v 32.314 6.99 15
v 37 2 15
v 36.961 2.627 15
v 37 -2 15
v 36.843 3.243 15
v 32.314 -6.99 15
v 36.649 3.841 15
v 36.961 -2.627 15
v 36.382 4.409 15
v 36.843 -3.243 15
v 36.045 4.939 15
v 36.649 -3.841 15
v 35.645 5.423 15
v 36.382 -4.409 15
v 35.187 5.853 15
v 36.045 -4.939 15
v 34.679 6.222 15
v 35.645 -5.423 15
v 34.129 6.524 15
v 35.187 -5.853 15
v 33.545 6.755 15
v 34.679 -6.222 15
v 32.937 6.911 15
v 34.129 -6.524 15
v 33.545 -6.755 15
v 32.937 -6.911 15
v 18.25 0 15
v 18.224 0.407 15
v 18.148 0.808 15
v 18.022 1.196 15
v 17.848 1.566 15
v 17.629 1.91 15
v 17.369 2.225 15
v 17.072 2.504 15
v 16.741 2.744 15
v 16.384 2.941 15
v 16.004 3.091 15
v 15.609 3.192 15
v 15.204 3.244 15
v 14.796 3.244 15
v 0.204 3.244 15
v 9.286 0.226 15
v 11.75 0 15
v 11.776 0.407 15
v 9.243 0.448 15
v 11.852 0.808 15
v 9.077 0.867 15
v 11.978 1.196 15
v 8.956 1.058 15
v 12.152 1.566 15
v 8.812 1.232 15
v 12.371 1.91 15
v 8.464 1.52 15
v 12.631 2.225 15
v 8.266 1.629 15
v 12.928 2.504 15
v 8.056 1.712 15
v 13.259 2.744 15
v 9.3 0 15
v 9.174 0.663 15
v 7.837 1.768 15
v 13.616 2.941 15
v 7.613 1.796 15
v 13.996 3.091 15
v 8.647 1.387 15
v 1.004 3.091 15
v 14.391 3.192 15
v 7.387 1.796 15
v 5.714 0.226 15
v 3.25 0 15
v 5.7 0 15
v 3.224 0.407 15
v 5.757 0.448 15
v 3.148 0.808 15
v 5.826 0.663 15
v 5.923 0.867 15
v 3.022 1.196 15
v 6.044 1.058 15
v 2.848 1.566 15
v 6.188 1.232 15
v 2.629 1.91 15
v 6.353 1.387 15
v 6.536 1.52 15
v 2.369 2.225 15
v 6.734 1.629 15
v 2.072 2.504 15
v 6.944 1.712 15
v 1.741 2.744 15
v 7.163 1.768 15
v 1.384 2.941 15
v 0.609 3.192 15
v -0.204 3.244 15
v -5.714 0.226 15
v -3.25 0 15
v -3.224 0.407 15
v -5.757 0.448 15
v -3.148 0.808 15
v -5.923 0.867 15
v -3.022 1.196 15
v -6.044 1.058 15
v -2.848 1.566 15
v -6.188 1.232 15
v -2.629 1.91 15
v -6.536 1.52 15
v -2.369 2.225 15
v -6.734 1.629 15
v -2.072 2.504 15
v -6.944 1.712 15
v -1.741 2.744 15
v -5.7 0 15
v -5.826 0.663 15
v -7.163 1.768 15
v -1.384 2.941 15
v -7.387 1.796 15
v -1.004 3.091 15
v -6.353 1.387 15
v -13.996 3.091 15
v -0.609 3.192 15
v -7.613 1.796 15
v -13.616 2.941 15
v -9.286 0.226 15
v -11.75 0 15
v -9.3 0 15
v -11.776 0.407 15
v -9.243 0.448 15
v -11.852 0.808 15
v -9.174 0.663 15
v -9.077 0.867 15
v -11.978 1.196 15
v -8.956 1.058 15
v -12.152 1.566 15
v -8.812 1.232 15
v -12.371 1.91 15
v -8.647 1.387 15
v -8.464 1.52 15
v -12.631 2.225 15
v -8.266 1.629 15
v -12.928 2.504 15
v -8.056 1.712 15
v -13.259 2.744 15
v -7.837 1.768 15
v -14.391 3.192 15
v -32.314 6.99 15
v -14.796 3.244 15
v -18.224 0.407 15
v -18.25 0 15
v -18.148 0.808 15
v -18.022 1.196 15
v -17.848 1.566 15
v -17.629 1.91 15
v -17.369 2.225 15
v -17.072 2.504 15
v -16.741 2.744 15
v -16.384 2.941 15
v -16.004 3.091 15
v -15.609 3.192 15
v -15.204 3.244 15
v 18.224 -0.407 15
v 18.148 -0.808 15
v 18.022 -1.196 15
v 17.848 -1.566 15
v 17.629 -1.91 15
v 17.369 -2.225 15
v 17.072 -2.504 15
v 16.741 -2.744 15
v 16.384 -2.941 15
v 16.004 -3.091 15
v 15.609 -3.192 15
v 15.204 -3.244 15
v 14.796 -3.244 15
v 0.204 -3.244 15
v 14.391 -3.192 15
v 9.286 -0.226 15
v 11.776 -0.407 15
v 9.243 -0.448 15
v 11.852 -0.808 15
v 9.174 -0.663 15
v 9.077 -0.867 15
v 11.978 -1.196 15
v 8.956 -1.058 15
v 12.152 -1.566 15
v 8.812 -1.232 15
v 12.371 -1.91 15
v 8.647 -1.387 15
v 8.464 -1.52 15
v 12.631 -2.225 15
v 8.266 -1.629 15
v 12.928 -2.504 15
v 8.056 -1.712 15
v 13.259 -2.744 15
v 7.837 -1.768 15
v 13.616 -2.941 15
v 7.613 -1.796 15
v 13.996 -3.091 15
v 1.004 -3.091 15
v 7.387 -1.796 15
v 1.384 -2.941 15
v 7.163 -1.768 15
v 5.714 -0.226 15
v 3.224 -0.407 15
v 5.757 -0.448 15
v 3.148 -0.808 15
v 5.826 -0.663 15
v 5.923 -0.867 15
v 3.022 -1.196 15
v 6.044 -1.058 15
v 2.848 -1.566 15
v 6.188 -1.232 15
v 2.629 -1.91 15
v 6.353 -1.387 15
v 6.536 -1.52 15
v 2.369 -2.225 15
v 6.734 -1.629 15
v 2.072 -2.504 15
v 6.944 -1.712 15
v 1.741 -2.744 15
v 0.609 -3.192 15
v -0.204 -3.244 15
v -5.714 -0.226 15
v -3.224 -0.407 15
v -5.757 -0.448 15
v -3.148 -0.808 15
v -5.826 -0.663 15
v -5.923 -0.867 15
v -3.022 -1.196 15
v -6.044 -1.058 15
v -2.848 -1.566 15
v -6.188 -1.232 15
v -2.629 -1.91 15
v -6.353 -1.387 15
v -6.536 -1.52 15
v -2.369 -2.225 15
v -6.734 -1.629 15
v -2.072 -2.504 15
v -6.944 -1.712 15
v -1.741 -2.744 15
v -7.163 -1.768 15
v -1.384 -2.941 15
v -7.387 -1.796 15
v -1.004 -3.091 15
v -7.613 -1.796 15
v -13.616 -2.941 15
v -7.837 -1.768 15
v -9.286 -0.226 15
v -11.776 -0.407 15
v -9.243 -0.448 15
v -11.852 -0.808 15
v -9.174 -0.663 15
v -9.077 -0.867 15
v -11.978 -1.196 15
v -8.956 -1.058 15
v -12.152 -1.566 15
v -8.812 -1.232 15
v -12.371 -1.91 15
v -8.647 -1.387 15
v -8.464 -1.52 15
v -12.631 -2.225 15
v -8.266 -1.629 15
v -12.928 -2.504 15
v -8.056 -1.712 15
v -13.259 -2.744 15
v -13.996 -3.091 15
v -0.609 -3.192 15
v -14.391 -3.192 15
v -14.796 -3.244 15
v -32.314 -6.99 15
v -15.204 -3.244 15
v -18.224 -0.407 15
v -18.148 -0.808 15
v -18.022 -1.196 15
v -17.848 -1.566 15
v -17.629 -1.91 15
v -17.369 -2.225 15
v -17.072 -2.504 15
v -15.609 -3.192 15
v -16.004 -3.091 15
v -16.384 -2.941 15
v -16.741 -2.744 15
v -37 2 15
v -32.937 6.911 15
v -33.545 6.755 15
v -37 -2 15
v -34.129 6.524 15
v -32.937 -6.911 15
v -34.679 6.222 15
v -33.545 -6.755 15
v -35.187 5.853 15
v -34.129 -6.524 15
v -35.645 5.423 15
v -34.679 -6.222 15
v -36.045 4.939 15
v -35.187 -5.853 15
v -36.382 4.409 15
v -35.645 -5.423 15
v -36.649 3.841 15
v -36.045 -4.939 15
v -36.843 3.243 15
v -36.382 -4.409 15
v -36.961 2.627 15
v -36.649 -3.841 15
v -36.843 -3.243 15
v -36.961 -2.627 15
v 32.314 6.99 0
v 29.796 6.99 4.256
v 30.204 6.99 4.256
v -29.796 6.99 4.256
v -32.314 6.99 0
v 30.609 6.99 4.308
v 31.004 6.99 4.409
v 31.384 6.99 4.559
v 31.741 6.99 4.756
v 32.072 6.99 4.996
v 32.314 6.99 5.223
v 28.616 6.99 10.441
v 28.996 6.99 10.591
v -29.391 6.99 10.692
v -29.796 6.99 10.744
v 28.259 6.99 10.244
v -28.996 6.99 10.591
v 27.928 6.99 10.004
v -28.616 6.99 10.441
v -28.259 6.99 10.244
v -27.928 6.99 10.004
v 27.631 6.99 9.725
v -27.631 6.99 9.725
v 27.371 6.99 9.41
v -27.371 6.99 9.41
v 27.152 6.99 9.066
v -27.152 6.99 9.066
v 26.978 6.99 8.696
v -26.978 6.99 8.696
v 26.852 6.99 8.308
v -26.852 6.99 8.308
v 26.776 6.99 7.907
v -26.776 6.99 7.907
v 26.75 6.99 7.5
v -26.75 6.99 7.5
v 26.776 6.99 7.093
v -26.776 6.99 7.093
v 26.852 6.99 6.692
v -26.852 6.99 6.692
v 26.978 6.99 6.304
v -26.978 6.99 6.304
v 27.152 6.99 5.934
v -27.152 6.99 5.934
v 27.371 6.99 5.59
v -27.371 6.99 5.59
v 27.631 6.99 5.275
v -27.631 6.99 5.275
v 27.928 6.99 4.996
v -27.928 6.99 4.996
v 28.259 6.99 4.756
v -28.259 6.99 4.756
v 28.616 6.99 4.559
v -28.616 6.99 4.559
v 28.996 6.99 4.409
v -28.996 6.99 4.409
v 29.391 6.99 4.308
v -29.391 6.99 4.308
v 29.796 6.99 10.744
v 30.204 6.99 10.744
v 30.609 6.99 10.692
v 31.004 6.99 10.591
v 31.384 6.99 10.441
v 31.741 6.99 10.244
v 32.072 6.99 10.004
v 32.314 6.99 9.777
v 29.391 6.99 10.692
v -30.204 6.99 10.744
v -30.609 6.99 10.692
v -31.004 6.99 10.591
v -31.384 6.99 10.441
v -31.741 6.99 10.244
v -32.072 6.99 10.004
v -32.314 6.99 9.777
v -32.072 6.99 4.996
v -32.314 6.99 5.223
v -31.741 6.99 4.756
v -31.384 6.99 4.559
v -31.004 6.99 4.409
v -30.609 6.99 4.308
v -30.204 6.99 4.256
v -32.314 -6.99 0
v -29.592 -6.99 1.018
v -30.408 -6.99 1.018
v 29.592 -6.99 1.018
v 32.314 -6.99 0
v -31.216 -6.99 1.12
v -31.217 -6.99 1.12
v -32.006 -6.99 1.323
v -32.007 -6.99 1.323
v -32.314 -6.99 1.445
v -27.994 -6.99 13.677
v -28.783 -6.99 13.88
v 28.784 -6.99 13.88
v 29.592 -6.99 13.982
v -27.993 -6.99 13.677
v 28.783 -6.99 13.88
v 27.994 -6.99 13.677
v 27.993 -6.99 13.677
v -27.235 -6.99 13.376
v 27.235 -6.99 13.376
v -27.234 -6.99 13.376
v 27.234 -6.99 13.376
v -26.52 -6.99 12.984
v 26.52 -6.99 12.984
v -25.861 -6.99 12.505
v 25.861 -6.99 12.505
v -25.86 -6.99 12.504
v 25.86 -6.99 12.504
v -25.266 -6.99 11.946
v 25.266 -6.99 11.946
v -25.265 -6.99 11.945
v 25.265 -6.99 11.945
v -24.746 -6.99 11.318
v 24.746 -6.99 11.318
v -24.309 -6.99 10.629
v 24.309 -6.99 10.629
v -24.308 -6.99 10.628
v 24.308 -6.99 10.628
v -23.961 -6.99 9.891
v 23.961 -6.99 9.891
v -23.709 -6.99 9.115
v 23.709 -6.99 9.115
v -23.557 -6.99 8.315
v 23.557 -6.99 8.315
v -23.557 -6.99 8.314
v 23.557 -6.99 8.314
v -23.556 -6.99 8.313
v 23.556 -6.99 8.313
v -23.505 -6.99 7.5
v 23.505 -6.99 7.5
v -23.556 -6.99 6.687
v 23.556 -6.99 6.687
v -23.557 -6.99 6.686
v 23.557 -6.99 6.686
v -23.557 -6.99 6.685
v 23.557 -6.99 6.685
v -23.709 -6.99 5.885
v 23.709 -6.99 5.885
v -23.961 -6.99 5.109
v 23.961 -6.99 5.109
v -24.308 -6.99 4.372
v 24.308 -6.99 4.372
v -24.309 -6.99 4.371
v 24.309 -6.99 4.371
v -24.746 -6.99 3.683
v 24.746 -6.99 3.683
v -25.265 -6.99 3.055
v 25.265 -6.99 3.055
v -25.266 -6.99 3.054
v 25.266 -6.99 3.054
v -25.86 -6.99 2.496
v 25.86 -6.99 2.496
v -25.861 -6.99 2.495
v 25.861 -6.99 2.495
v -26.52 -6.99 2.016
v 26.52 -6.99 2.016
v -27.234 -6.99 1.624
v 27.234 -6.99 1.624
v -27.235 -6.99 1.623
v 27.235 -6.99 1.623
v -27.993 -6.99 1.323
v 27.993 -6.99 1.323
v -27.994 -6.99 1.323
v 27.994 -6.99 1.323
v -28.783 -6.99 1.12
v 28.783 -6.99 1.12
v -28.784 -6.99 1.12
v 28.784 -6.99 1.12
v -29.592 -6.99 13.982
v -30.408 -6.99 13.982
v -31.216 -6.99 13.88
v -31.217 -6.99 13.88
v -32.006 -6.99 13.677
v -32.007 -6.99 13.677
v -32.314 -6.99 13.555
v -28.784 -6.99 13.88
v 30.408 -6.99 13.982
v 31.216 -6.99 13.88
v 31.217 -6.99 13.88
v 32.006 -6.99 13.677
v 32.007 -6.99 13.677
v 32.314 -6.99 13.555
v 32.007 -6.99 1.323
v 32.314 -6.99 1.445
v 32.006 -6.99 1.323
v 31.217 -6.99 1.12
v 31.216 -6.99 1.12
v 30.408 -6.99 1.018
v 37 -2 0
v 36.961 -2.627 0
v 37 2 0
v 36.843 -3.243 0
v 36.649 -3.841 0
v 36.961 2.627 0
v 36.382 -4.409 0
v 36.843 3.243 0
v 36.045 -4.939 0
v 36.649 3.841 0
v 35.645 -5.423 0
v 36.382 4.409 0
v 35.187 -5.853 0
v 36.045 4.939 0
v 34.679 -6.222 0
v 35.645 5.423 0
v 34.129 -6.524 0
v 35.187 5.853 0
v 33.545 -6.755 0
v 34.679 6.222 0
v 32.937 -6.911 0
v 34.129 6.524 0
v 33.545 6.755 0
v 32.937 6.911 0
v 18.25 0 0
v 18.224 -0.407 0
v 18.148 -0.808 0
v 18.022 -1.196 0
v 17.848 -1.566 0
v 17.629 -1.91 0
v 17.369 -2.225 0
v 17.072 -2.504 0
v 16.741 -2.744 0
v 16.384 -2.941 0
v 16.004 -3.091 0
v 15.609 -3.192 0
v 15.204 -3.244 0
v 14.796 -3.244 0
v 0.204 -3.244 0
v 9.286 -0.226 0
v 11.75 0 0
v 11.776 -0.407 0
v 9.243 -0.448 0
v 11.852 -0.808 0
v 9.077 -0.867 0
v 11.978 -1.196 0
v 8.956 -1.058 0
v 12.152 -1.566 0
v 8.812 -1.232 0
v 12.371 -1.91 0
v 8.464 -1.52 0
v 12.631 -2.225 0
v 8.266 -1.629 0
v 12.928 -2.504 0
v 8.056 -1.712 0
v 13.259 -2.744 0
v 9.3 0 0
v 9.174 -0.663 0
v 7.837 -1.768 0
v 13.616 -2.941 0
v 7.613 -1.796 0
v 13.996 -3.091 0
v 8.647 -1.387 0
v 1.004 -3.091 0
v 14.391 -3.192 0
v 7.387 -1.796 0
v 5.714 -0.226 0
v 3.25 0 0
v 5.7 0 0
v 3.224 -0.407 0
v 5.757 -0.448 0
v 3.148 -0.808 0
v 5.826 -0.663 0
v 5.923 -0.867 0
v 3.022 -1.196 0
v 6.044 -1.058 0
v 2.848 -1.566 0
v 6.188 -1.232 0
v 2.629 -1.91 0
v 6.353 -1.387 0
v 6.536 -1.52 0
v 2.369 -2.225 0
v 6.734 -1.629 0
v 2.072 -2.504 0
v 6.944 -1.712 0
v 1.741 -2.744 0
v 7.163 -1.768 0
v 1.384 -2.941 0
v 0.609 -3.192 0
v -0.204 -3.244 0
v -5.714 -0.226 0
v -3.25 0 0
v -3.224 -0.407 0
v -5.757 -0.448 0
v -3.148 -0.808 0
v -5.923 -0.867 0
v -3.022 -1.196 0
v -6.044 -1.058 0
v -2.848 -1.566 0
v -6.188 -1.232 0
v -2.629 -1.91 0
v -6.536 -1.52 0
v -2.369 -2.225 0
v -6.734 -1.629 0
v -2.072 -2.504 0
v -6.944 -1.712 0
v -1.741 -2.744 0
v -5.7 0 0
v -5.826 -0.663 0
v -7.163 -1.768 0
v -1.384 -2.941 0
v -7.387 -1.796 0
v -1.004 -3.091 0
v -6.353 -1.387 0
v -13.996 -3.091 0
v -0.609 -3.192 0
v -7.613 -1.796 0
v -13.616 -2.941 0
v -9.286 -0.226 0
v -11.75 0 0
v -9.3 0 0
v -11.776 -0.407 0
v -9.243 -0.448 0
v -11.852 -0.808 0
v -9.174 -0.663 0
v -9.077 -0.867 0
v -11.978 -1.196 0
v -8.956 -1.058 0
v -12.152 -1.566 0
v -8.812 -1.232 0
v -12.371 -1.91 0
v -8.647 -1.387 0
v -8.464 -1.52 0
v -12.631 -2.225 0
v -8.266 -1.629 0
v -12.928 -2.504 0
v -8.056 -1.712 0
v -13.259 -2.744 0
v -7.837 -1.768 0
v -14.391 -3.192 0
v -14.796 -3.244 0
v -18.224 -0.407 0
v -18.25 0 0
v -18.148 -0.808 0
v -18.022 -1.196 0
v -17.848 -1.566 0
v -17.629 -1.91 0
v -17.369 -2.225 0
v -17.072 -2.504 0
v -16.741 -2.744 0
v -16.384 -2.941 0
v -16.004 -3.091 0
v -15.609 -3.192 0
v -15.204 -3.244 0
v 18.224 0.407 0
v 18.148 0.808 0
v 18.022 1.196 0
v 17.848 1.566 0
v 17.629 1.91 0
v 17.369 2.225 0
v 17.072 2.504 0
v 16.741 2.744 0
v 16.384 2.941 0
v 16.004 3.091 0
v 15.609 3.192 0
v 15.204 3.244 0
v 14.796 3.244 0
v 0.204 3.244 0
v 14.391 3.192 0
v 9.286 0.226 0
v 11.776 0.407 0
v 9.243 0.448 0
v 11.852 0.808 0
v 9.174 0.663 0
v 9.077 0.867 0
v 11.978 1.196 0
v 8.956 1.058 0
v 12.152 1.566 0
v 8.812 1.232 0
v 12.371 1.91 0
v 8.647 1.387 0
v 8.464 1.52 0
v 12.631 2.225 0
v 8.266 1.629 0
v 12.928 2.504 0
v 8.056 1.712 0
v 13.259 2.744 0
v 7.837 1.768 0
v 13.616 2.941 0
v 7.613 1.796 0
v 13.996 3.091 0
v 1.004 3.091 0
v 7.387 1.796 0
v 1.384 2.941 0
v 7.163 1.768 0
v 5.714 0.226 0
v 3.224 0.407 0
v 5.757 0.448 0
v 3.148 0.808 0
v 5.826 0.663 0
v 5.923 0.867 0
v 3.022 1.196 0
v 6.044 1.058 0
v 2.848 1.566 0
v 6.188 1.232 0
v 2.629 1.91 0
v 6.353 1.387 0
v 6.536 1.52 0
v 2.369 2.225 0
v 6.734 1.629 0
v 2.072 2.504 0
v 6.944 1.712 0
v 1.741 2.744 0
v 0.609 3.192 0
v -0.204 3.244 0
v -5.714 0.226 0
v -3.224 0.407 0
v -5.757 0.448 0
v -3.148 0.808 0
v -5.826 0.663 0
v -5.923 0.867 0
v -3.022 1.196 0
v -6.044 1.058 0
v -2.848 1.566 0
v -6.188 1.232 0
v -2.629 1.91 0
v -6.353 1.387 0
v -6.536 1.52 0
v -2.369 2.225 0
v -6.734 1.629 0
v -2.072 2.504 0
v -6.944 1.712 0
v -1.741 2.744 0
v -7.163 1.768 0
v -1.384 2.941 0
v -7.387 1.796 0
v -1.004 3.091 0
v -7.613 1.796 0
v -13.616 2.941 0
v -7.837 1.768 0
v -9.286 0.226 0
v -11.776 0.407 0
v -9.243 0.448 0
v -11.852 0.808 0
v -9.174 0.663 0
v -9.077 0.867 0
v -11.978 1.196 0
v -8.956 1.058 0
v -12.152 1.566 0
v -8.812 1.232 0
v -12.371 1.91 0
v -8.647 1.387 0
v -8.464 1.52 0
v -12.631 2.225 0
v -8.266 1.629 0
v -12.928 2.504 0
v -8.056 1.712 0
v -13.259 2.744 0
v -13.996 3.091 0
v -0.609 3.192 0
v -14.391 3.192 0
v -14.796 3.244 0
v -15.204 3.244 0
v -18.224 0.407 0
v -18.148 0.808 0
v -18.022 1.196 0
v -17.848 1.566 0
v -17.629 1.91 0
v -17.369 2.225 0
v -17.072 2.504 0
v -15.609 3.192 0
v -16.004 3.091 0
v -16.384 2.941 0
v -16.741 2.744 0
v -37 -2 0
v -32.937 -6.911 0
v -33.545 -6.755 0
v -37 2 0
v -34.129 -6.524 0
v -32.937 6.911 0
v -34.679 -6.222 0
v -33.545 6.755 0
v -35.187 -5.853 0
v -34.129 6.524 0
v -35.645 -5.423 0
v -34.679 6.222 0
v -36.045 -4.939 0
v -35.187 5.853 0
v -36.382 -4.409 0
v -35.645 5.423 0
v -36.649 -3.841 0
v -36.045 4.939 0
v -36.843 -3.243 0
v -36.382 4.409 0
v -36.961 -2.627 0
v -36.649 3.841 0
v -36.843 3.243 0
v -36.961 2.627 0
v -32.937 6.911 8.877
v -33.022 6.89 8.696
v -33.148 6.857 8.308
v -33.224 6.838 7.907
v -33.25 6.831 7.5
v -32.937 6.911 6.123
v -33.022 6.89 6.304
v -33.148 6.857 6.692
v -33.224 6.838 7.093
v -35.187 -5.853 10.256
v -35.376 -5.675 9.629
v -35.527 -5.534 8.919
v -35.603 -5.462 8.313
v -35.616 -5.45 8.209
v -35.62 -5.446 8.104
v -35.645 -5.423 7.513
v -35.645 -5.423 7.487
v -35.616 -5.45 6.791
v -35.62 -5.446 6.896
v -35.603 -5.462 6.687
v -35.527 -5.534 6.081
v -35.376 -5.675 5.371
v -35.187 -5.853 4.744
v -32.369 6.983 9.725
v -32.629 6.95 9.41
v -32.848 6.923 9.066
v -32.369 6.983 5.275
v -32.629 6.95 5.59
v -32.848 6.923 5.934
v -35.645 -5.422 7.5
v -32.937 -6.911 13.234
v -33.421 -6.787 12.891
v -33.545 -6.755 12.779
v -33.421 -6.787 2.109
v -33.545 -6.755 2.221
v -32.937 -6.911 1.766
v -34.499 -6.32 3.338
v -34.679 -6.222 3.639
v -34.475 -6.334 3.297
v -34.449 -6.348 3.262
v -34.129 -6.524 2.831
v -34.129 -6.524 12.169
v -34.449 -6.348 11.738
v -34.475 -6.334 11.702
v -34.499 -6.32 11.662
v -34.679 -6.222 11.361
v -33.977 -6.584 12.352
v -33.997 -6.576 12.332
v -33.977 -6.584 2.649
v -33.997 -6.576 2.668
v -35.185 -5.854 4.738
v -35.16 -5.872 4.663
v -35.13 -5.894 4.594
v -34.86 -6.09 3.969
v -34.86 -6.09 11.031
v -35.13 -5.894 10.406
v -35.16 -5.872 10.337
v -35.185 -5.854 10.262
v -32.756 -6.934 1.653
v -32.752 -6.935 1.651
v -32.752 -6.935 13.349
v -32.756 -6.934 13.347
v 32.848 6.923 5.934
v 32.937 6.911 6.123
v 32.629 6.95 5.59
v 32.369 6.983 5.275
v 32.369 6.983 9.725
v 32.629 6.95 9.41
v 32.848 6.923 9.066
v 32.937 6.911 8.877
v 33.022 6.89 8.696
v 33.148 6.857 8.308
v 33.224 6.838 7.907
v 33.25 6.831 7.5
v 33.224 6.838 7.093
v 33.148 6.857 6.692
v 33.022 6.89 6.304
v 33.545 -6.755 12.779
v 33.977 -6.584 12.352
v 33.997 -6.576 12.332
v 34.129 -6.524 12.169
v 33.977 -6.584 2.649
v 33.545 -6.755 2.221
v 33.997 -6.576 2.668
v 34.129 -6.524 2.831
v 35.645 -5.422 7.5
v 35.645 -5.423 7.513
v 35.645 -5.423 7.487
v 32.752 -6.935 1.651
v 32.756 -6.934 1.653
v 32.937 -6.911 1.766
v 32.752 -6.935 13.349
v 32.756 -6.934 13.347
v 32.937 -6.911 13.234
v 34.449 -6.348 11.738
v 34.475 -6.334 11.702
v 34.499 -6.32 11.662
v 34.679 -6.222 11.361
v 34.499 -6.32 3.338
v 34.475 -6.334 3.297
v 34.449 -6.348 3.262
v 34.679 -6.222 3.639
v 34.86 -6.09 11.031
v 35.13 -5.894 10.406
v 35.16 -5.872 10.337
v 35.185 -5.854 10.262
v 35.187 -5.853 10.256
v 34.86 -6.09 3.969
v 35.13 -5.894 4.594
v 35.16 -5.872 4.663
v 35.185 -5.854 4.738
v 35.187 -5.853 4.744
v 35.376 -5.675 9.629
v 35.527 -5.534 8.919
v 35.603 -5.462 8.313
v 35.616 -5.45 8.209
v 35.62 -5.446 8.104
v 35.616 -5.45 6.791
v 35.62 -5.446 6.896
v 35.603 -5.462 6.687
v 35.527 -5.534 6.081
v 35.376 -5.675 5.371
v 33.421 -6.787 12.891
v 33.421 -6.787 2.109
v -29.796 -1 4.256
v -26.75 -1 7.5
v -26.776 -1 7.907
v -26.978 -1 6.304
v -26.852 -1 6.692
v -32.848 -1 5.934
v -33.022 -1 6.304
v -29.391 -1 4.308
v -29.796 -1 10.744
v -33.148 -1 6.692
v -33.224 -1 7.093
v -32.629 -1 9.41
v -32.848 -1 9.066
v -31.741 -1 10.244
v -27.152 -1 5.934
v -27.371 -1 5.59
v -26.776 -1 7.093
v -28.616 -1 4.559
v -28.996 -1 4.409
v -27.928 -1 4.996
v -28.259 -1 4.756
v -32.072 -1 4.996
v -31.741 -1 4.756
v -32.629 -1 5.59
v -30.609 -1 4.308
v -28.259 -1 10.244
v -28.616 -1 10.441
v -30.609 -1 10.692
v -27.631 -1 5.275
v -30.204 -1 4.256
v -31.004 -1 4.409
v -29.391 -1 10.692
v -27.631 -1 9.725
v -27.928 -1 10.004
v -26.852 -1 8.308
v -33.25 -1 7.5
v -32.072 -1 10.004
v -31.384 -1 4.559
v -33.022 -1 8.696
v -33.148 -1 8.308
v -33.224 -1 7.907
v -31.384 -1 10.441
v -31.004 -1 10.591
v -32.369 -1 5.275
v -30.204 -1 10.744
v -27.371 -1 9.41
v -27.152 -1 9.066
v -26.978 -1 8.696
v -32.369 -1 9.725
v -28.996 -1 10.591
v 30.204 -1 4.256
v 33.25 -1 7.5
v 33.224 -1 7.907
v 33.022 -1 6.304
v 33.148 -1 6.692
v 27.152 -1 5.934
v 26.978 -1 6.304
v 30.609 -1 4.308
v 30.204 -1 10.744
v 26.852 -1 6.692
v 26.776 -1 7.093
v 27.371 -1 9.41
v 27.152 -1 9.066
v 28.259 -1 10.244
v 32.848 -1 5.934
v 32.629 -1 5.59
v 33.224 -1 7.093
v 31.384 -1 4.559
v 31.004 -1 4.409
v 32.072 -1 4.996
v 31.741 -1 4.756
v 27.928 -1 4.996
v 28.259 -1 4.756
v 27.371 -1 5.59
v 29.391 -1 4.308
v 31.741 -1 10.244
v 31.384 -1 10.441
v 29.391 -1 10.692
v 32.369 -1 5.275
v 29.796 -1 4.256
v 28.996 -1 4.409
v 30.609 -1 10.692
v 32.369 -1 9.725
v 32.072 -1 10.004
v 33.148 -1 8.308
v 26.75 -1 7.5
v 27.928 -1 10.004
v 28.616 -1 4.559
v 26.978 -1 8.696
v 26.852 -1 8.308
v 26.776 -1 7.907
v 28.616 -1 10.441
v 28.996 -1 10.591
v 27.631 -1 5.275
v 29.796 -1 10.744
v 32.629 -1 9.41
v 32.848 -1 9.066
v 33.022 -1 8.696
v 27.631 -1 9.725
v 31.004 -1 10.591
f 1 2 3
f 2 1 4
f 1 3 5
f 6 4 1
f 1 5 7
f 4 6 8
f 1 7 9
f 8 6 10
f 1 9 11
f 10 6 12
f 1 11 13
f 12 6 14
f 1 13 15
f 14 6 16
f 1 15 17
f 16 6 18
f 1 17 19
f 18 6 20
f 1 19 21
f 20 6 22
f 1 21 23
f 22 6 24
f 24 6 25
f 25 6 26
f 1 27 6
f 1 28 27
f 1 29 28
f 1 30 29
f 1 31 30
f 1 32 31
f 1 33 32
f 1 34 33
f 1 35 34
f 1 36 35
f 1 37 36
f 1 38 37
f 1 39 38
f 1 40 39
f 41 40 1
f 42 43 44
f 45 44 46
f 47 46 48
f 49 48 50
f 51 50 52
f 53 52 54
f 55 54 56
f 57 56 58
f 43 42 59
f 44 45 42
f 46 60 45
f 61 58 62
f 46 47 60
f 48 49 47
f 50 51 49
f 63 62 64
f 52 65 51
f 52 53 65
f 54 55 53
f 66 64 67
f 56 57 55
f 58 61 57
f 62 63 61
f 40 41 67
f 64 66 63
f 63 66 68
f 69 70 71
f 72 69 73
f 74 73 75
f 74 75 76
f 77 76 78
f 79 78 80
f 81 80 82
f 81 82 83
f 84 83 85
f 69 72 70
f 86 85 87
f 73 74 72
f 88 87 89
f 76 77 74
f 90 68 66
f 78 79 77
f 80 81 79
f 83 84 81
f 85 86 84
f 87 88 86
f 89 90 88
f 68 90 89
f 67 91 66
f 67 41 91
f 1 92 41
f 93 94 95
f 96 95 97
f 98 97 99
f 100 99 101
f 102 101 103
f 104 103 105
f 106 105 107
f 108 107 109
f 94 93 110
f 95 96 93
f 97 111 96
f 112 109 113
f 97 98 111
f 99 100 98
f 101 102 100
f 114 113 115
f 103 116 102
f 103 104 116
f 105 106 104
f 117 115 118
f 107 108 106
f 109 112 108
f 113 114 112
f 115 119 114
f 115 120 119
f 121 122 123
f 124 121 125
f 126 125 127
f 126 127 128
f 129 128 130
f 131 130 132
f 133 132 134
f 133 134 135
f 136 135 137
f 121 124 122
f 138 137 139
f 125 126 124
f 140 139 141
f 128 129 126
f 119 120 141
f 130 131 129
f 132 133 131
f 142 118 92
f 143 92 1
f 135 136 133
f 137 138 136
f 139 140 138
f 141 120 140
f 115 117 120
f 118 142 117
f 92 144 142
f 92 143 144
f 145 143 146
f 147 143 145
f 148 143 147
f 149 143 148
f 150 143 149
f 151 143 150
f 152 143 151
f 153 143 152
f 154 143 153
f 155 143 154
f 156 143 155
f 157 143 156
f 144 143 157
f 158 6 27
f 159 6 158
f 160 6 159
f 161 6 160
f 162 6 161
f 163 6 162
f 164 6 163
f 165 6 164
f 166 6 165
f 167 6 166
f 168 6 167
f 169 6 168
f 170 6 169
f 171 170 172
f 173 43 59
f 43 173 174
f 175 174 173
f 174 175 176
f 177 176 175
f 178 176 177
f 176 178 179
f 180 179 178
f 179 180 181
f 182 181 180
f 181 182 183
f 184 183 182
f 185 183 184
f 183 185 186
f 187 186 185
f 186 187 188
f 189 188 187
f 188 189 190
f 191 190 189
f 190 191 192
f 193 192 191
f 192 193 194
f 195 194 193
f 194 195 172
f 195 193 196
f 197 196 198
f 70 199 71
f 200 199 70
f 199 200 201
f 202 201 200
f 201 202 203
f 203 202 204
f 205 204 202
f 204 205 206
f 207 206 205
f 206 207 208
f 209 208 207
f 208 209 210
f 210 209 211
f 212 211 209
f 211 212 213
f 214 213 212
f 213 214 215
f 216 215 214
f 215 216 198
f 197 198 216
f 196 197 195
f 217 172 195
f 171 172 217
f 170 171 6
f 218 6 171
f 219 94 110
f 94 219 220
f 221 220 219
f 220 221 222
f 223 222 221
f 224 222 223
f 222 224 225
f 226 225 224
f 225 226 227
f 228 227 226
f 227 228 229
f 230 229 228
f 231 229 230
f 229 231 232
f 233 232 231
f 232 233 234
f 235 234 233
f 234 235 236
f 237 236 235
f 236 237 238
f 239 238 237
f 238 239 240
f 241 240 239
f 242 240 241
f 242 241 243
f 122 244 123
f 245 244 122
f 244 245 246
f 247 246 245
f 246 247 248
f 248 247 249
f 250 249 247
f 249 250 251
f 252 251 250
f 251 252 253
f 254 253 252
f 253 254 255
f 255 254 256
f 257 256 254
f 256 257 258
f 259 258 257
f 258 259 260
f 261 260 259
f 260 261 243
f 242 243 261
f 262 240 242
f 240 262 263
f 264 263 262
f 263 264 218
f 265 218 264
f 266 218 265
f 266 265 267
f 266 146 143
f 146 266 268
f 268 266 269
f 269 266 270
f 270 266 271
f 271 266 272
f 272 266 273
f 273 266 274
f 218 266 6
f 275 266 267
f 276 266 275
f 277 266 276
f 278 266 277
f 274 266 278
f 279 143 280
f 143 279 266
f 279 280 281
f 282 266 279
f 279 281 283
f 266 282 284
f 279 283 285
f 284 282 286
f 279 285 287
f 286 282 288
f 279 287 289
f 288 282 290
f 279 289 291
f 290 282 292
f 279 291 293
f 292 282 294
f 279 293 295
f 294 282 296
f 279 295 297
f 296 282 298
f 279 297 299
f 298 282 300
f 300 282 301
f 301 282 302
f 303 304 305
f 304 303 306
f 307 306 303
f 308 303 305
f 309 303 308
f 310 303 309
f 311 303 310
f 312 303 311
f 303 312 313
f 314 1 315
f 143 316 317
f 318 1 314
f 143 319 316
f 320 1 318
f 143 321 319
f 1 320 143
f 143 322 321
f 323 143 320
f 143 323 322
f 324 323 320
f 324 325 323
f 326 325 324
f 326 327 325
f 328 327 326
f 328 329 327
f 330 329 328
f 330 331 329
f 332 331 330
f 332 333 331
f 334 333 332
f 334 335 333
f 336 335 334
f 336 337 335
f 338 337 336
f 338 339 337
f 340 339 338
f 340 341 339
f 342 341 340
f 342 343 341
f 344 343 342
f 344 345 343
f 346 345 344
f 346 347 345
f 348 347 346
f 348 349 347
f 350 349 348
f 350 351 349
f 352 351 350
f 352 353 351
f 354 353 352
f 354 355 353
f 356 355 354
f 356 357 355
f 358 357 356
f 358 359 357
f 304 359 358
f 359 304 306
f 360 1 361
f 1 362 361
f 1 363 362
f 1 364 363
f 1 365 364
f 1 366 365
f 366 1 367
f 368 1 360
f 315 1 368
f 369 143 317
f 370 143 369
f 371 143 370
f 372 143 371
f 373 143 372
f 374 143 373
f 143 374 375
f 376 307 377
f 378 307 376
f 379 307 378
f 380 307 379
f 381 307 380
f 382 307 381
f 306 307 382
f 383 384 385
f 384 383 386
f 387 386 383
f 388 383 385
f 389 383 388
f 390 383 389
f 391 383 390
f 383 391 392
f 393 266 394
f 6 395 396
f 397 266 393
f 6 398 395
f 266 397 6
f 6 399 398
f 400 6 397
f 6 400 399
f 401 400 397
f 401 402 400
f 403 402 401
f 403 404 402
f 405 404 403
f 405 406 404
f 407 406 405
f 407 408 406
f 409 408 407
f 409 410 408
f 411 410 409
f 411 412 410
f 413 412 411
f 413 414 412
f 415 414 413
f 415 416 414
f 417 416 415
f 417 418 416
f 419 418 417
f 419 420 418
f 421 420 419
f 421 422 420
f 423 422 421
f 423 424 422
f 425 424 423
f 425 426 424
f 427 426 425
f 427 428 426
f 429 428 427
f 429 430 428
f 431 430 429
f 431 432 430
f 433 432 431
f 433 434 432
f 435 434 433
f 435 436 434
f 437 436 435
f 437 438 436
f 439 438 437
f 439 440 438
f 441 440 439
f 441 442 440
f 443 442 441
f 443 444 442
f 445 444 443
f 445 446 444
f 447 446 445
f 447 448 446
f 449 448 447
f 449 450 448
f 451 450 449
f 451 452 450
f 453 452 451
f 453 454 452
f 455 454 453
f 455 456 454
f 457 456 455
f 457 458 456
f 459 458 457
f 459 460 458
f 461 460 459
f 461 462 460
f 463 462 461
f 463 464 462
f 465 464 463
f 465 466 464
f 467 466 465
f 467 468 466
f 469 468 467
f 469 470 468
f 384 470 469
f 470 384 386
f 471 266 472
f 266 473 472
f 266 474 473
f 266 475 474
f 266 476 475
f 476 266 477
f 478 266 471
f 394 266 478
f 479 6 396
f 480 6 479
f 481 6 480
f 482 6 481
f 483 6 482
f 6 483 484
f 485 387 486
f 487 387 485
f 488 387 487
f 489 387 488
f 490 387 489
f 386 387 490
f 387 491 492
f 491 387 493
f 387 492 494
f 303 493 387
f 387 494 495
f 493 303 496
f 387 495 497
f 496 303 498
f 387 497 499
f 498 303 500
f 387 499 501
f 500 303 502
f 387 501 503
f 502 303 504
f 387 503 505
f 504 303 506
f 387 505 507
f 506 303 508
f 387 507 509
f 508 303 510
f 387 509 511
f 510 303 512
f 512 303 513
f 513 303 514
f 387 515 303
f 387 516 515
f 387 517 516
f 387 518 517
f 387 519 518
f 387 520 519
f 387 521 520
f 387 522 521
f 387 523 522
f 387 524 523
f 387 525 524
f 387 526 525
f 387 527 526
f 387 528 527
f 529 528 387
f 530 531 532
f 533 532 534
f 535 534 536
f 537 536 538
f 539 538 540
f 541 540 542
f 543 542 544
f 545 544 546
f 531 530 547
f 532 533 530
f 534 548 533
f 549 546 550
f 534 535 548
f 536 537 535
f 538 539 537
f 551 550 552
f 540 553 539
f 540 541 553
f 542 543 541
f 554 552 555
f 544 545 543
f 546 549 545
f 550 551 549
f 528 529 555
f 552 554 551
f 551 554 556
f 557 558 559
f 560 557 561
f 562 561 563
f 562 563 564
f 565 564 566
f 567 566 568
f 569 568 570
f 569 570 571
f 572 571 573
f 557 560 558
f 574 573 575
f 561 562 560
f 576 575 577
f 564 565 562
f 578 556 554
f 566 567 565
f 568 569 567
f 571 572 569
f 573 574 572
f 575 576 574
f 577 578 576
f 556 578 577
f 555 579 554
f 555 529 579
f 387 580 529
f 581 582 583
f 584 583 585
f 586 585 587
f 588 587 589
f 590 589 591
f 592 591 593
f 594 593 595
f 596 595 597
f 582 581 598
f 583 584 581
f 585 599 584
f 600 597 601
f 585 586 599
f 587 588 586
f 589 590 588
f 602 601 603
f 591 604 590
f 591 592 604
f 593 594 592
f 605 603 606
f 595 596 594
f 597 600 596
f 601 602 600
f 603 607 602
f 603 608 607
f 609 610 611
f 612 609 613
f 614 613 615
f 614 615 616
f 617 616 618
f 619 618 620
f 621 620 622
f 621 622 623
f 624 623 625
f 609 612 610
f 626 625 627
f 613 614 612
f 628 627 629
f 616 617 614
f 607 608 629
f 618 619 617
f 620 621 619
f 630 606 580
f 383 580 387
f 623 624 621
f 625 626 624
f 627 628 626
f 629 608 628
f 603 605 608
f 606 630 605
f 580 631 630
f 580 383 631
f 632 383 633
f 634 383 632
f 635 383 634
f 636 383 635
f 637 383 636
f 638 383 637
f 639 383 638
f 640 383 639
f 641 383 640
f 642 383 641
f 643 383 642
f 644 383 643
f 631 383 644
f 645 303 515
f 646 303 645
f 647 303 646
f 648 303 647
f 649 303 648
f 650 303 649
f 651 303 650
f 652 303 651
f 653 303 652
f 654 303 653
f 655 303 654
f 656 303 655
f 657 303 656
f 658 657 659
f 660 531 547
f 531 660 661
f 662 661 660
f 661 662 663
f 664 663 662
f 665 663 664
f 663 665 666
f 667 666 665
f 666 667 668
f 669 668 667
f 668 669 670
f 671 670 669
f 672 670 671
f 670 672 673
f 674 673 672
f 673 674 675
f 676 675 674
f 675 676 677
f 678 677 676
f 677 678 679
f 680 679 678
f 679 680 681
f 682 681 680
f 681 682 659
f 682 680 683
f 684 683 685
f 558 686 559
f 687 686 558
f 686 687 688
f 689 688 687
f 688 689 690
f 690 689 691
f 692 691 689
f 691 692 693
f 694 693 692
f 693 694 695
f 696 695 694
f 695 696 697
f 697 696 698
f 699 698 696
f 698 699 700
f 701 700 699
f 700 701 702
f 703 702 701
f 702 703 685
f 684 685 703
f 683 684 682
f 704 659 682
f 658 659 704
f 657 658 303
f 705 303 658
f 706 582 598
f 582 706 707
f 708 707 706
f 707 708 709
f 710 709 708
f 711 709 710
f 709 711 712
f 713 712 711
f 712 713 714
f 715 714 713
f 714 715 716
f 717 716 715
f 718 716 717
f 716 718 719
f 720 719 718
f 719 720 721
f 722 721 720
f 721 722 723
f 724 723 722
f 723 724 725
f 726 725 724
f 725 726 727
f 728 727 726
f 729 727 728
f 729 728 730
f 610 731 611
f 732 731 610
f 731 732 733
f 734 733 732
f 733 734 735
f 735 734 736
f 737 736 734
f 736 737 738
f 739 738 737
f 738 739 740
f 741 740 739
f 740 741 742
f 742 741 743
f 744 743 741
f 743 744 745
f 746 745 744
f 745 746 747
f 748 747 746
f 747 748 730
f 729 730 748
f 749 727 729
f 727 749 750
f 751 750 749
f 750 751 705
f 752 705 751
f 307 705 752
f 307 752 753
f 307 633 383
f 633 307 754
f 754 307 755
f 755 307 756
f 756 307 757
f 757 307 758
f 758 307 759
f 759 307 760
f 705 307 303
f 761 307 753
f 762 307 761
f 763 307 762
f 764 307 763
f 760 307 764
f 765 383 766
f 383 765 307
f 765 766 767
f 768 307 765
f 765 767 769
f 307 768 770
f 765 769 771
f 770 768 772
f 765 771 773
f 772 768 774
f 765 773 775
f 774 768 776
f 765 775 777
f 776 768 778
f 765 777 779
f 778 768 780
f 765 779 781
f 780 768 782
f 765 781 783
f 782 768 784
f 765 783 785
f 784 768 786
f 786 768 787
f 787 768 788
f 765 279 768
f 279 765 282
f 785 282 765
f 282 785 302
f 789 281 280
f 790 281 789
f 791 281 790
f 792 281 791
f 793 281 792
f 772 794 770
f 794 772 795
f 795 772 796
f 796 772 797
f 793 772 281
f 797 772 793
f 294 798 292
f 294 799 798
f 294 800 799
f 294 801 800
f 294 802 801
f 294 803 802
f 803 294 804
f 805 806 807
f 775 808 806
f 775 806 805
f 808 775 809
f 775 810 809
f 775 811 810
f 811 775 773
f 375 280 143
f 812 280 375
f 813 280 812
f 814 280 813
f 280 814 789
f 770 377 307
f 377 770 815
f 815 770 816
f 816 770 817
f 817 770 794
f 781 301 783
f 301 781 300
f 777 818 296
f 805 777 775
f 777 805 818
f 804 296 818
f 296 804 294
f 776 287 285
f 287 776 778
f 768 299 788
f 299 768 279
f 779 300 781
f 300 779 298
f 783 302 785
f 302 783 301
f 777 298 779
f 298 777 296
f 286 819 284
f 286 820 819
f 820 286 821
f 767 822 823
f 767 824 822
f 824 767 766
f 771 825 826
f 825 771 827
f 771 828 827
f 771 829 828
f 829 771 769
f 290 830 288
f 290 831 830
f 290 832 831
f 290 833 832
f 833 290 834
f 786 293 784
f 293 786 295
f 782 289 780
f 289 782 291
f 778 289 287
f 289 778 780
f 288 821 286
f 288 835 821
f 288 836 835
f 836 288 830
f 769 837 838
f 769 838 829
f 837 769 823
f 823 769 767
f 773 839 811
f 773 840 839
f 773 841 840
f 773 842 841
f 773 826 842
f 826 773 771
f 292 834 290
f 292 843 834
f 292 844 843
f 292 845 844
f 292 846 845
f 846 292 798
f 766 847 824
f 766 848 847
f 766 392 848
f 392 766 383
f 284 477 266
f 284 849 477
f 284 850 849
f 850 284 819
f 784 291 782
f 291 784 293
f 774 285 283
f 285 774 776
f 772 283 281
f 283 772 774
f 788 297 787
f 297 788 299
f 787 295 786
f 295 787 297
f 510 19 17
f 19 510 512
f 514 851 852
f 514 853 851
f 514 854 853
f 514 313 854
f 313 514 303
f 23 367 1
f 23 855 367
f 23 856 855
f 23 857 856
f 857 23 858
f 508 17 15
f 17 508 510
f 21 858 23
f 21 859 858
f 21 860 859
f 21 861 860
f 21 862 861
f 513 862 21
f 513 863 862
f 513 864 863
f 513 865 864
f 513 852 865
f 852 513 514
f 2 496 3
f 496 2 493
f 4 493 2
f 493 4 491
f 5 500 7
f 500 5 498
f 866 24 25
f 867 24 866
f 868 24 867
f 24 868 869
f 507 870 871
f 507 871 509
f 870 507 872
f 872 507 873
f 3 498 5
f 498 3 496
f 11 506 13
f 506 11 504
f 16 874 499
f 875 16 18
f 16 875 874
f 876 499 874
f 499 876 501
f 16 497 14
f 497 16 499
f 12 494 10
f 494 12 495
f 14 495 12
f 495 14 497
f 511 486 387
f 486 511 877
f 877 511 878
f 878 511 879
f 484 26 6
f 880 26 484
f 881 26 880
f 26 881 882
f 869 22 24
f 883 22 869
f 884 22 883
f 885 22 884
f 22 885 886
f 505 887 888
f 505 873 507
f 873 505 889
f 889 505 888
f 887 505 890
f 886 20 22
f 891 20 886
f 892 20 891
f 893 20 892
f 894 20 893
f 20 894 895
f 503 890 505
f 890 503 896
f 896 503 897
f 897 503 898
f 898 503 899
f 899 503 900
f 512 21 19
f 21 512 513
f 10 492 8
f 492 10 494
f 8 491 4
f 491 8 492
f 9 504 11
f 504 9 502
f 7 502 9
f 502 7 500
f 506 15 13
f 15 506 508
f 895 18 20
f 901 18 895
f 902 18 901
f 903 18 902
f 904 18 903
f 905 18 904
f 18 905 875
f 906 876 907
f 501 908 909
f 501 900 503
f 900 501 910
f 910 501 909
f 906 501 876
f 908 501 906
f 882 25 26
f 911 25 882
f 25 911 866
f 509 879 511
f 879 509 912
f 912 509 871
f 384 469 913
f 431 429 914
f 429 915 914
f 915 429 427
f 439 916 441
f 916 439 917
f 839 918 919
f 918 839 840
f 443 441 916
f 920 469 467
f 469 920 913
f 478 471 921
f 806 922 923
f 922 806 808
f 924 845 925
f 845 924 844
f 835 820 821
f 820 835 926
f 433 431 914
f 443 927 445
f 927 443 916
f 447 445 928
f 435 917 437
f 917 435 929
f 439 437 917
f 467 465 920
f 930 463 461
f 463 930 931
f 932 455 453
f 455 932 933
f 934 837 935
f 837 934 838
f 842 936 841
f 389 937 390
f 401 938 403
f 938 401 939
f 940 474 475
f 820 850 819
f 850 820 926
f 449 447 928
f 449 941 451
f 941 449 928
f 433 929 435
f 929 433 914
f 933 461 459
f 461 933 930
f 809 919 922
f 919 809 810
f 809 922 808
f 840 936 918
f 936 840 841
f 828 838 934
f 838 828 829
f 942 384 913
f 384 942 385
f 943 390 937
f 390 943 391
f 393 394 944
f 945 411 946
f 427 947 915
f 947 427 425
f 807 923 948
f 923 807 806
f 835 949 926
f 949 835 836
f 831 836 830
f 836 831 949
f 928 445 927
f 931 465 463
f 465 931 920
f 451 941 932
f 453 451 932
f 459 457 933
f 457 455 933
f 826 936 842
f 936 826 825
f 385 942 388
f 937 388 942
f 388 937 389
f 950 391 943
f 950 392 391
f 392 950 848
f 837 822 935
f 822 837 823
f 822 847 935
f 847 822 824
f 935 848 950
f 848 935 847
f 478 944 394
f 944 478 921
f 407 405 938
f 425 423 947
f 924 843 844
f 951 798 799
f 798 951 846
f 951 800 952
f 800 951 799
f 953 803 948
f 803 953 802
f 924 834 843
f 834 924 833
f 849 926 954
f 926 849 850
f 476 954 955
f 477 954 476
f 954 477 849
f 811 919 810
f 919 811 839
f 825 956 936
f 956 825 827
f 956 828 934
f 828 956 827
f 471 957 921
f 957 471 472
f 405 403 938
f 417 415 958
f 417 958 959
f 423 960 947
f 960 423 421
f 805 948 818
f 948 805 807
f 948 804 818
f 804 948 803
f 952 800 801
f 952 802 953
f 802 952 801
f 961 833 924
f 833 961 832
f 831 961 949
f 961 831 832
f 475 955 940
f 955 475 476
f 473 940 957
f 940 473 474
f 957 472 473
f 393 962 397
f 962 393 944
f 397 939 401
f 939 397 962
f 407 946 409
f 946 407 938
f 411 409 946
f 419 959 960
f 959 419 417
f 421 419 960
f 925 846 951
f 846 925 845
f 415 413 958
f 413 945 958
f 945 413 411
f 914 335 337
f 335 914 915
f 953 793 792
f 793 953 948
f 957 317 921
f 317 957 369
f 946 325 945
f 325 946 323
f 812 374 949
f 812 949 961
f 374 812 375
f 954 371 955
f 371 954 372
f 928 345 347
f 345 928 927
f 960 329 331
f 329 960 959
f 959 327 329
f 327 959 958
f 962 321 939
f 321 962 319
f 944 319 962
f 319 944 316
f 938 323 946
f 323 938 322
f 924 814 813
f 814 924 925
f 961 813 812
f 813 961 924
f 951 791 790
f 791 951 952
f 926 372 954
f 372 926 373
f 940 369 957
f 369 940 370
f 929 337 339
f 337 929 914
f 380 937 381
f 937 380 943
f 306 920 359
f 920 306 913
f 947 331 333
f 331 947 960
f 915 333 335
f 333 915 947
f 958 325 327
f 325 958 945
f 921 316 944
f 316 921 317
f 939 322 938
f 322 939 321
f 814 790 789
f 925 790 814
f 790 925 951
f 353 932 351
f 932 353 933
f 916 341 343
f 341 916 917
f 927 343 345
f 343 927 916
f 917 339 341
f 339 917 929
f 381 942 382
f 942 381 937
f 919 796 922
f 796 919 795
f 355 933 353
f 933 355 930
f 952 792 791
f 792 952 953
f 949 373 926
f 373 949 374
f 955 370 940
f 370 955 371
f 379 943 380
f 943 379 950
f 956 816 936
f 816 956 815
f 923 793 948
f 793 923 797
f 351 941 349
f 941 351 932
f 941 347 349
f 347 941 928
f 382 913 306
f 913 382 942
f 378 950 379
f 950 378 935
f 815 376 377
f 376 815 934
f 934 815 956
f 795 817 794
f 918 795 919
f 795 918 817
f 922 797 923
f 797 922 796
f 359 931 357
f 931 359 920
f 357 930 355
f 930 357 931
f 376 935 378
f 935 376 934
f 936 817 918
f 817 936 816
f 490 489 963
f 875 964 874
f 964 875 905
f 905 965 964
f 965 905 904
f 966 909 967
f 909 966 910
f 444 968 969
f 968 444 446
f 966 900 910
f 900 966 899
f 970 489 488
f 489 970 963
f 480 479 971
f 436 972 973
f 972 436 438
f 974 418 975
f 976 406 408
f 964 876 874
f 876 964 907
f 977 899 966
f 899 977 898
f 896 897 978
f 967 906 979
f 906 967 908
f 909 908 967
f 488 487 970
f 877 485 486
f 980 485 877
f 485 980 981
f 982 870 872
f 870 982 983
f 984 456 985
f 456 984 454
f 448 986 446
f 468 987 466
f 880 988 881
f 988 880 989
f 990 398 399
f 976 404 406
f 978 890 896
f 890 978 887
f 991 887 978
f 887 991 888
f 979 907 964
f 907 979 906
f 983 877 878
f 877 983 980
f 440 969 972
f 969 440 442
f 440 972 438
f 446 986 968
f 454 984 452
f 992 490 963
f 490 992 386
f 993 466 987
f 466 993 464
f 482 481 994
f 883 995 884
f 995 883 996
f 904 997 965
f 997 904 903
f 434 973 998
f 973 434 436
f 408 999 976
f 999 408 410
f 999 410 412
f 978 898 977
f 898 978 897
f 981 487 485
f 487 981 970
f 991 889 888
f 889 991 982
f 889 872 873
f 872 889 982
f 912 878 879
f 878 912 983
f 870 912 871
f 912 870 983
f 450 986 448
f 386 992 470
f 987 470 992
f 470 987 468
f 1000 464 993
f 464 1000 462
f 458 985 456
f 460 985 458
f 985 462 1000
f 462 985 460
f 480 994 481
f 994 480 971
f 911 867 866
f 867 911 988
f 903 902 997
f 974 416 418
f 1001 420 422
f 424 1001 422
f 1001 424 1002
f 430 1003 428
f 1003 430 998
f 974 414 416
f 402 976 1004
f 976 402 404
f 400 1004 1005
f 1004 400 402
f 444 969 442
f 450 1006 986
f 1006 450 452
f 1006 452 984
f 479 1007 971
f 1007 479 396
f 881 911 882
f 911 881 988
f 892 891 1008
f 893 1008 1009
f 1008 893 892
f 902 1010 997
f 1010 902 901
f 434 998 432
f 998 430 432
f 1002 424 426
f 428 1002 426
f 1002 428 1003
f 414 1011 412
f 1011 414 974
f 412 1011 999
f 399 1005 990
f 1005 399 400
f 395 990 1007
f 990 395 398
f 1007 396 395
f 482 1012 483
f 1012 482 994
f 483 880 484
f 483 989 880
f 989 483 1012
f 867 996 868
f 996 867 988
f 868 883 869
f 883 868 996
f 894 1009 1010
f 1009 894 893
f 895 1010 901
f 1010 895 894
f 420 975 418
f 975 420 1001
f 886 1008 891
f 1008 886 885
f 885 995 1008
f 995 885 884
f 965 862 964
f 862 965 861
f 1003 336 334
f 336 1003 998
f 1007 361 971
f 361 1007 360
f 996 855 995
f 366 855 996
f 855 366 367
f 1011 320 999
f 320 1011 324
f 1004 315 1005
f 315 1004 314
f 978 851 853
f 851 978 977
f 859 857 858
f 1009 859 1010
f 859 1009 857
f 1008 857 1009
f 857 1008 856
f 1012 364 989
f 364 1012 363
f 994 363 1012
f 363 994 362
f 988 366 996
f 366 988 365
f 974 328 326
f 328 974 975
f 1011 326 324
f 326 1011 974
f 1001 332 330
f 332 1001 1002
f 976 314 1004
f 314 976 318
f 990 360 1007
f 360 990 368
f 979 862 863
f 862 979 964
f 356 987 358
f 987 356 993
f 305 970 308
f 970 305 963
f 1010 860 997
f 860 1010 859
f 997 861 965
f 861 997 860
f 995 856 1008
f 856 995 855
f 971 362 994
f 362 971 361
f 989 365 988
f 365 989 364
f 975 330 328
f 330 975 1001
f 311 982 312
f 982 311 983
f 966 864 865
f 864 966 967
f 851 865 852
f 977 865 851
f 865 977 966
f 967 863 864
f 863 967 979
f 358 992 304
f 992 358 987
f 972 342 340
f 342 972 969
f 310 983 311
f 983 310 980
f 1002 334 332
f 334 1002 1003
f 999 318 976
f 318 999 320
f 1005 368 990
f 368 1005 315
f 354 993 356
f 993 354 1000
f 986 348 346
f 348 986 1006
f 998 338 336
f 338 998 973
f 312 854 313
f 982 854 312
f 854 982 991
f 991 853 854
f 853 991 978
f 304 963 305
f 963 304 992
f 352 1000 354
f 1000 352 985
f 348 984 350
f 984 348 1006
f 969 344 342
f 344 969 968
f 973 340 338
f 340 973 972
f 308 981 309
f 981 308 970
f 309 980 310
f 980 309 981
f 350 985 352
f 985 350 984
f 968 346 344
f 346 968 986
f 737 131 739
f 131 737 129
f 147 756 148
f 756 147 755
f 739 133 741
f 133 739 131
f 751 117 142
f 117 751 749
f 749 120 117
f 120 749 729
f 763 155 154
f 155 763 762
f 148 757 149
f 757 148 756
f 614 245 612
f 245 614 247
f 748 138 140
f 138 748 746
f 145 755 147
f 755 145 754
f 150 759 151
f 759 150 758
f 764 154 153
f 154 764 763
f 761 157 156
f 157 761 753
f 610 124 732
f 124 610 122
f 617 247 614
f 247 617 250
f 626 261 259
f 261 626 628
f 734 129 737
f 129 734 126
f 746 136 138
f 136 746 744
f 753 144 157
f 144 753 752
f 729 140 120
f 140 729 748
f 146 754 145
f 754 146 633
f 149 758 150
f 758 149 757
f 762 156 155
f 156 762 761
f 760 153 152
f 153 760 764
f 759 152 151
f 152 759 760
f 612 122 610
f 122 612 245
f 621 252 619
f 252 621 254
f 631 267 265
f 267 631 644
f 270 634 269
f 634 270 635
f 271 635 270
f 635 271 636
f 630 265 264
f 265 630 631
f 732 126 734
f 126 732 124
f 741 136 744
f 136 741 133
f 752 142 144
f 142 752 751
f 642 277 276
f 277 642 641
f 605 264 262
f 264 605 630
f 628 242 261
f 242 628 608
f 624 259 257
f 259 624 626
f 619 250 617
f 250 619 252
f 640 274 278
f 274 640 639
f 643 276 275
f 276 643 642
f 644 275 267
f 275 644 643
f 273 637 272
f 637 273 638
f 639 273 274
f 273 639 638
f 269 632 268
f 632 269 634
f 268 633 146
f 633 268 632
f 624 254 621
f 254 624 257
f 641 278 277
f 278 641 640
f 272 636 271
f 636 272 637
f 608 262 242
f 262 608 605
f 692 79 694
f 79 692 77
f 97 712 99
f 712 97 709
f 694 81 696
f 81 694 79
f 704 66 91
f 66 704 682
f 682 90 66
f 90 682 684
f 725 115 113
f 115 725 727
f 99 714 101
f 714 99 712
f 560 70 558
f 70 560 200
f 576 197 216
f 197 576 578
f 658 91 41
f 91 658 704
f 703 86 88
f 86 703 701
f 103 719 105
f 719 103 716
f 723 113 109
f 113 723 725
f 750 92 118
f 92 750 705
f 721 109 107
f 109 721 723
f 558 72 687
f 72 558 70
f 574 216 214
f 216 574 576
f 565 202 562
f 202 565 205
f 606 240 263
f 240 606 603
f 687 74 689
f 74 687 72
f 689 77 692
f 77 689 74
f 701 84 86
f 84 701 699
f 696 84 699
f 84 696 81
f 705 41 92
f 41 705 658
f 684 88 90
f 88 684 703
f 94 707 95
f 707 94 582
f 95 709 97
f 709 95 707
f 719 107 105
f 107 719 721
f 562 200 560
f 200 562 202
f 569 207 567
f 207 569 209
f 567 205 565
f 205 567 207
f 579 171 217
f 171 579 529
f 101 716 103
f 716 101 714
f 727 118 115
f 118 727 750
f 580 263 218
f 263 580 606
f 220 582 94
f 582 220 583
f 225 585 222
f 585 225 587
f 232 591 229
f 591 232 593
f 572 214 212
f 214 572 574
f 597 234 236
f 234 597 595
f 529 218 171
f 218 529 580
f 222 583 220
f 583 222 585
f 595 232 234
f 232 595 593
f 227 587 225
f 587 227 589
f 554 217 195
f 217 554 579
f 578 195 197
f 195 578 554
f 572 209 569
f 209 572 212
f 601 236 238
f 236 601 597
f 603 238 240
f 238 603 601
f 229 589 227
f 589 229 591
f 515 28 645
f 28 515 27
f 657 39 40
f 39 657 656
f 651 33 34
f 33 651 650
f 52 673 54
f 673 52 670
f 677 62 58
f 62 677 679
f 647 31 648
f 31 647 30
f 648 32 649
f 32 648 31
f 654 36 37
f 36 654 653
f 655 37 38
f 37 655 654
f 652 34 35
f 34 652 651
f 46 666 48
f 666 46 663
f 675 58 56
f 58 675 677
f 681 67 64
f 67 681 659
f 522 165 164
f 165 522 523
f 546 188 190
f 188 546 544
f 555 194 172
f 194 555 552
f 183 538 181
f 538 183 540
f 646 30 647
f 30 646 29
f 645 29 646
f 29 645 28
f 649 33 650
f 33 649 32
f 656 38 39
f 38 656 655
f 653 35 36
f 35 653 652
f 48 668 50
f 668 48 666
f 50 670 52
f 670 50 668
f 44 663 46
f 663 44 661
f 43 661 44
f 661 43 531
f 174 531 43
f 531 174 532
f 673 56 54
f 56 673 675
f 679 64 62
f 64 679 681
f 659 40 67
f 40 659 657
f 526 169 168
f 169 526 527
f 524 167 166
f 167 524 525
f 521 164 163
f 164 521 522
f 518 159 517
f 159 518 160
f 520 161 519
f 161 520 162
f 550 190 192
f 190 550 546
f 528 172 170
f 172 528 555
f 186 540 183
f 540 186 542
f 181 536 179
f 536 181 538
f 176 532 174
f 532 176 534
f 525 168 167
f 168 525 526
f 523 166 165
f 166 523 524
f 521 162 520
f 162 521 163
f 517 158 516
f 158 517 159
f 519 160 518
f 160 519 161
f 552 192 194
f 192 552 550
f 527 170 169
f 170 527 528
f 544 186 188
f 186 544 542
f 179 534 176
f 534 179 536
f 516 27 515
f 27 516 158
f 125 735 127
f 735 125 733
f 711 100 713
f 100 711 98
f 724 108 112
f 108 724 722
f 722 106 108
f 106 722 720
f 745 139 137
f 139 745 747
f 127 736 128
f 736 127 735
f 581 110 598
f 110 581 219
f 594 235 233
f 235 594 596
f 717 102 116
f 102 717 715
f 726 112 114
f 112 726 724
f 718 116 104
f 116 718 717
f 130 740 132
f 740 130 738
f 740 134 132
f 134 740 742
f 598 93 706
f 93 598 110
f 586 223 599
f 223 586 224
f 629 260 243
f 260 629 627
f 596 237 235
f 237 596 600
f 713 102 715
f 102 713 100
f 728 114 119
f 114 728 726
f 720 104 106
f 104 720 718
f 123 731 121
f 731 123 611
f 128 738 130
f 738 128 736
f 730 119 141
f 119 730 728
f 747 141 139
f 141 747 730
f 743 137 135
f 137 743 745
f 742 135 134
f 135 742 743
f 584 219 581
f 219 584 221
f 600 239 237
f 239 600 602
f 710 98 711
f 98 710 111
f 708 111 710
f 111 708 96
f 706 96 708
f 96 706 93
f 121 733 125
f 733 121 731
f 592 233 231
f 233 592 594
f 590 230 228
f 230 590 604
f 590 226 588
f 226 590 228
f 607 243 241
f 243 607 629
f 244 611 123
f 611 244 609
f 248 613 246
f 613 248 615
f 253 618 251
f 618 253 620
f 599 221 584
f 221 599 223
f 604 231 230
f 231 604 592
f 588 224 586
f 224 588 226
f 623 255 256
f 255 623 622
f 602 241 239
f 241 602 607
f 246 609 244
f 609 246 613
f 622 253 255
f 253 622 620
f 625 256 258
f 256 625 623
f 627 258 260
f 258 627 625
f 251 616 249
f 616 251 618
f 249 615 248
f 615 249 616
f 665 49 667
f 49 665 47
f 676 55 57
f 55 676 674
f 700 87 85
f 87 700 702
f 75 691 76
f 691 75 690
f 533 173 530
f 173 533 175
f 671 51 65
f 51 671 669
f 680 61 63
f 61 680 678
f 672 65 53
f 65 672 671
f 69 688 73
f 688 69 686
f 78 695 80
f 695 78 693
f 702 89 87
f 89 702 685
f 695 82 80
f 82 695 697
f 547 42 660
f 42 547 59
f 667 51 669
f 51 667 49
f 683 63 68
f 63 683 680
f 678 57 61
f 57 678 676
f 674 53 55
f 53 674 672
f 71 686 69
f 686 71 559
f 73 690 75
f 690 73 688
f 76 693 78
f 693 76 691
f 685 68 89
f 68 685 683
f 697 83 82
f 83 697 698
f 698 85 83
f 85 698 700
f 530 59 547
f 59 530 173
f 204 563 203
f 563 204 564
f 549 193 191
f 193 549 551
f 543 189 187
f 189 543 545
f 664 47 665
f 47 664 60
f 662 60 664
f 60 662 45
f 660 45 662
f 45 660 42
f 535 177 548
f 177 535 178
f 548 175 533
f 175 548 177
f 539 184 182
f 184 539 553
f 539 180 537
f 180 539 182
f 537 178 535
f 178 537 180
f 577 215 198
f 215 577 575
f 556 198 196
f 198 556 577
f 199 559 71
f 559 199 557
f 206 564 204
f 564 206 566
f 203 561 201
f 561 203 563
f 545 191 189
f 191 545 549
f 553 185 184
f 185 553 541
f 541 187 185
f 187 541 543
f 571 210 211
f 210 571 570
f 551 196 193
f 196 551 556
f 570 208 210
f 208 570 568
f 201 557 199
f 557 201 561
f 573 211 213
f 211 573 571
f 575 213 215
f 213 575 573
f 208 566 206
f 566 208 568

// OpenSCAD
$fn = 50;


difference() {
	union() {
		hull() {
			translate(v = [-17.0000000000, 2.0000000000, 0]) {
				cylinder(h = 15, r = 5);
			}
			translate(v = [17.0000000000, 2.0000000000, 0]) {
				cylinder(h = 15, r = 5);
			}
			translate(v = [-17.0000000000, -2.0000000000, 0]) {
				cylinder(h = 15, r = 5);
			}
			translate(v = [17.0000000000, -2.0000000000, 0]) {
				cylinder(h = 15, r = 5);
			}
		}
		translate(v = [-22.5000000000, 0.0000000000, 0]) {
			hull() {
				translate(v = [-9.5000000000, 2.0000000000, 0]) {
					cylinder(h = 15, r = 5);
				}
				translate(v = [9.5000000000, 2.0000000000, 0]) {
					cylinder(h = 15, r = 5);
				}
				translate(v = [-9.5000000000, -2.0000000000, 0]) {
					cylinder(h = 15, r = 5);
				}
				translate(v = [9.5000000000, -2.0000000000, 0]) {
					cylinder(h = 15, r = 5);
				}
			}
		}
		translate(v = [-22.5000000000, 0.0000000000, 0]) {
			hull() {
				translate(v = [-9.5000000000, 2.0000000000, 0]) {
					cylinder(h = 15, r = 5);
				}
				translate(v = [9.5000000000, 2.0000000000, 0]) {
					cylinder(h = 15, r = 5);
				}
				translate(v = [-9.5000000000, -2.0000000000, 0]) {
					cylinder(h = 15, r = 5);
				}
				translate(v = [9.5000000000, -2.0000000000, 0]) {
					cylinder(h = 15, r = 5);
				}
			}
		}
		translate(v = [22.5000000000, 0.0000000000, 0]) {
			hull() {
				translate(v = [-9.5000000000, 2.0000000000, 0]) {
					cylinder(h = 15, r = 5);
				}
				translate(v = [9.5000000000, 2.0000000000, 0]) {
					cylinder(h = 15, r = 5);
				}
				translate(v = [-9.5000000000, -2.0000000000, 0]) {
					cylinder(h = 15, r = 5);
				}
				translate(v = [9.5000000000, -2.0000000000, 0]) {
					cylinder(h = 15, r = 5);
				}
			}
		}
		translate(v = [22.5000000000, 0.0000000000, 0]) {
			hull() {
				translate(v = [-9.5000000000, 2.0000000000, 0]) {
					cylinder(h = 15, r = 5);
				}
				translate(v = [9.5000000000, 2.0000000000, 0]) {
					cylinder(h = 15, r = 5);
				}
				translate(v = [-9.5000000000, -2.0000000000, 0]) {
					cylinder(h = 15, r = 5);
				}
				translate(v = [9.5000000000, -2.0000000000, 0]) {
					cylinder(h = 15, r = 5);
				}
			}
		}
	}
	union() {
		translate(v = [-30.0000000000, -7.0000000000, 7.5000000000]) {
			rotate(a = [90, 0, 0]) {
				difference() {
					union() {
						#translate(v = [0, 0, -14.0000000000]) {
							cylinder(h = 14, r = 2.2500000000);
						}
						#translate(v = [0, 0, -6]) {
							cylinder(h = 6, r1 = 3.2500000000, r2 = 6.5000000000);
						}
						#translate(v = [0, 0, -14.0000000000]) {
							cylinder(h = 14, r = 3.2500000000);
						}
						#translate(v = [0, 0, -14.0000000000]) {
							cylinder(h = 14, r = 2.2500000000);
						}
					}
					union();
				}
			}
		}
		translate(v = [30.0000000000, -7.0000000000, 7.5000000000]) {
			rotate(a = [90, 0, 0]) {
				difference() {
					union() {
						#translate(v = [0, 0, -14.0000000000]) {
							cylinder(h = 14, r = 2.2500000000);
						}
						#translate(v = [0, 0, -6]) {
							cylinder(h = 6, r1 = 3.2500000000, r2 = 6.5000000000);
						}
						#translate(v = [0, 0, -14.0000000000]) {
							cylinder(h = 14, r = 3.2500000000);
						}
						#translate(v = [0, 0, -14.0000000000]) {
							cylinder(h = 14, r = 2.2500000000);
						}
					}
					union();
				}
			}
		}
		translate(v = [-15.0000000000, 0.0000000000, 0]) {
			translate(v = [0, 0, -100]) {
				cylinder(h = 200, r = 3.2500000000);
			}
		}
		translate(v = [0, 0, -100]) {
			cylinder(h = 200, r = 3.2500000000);
		}
		translate(v = [15.0000000000, 0.0000000000, 0]) {
			translate(v = [0, 0, -100]) {
				cylinder(h = 200, r = 3.2500000000);
			}
		}
		translate(v = [-15.0000000000, 0.0000000000, 0]) {
			translate(v = [0, 0, -100]) {
				cylinder(h = 200, r = 1.8000000000);
			}
		}
		translate(v = [-7.5000000000, 0.0000000000, 0]) {
			translate(v = [0, 0, -100]) {
				cylinder(h = 200, r = 1.8000000000);
			}
		}
		translate(v = [0, 0, -100]) {
			cylinder(h = 200, r = 1.8000000000);
		}
		translate(v = [7.5000000000, 0.0000000000, 0]) {
			translate(v = [0, 0, -100]) {
				cylinder(h = 200, r = 1.8000000000);
			}
		}
		translate(v = [15.0000000000, 0.0000000000, 0]) {
			translate(v = [0, 0, -100]) {
				cylinder(h = 200, r = 1.8000000000);
			}
		}
	}
}
